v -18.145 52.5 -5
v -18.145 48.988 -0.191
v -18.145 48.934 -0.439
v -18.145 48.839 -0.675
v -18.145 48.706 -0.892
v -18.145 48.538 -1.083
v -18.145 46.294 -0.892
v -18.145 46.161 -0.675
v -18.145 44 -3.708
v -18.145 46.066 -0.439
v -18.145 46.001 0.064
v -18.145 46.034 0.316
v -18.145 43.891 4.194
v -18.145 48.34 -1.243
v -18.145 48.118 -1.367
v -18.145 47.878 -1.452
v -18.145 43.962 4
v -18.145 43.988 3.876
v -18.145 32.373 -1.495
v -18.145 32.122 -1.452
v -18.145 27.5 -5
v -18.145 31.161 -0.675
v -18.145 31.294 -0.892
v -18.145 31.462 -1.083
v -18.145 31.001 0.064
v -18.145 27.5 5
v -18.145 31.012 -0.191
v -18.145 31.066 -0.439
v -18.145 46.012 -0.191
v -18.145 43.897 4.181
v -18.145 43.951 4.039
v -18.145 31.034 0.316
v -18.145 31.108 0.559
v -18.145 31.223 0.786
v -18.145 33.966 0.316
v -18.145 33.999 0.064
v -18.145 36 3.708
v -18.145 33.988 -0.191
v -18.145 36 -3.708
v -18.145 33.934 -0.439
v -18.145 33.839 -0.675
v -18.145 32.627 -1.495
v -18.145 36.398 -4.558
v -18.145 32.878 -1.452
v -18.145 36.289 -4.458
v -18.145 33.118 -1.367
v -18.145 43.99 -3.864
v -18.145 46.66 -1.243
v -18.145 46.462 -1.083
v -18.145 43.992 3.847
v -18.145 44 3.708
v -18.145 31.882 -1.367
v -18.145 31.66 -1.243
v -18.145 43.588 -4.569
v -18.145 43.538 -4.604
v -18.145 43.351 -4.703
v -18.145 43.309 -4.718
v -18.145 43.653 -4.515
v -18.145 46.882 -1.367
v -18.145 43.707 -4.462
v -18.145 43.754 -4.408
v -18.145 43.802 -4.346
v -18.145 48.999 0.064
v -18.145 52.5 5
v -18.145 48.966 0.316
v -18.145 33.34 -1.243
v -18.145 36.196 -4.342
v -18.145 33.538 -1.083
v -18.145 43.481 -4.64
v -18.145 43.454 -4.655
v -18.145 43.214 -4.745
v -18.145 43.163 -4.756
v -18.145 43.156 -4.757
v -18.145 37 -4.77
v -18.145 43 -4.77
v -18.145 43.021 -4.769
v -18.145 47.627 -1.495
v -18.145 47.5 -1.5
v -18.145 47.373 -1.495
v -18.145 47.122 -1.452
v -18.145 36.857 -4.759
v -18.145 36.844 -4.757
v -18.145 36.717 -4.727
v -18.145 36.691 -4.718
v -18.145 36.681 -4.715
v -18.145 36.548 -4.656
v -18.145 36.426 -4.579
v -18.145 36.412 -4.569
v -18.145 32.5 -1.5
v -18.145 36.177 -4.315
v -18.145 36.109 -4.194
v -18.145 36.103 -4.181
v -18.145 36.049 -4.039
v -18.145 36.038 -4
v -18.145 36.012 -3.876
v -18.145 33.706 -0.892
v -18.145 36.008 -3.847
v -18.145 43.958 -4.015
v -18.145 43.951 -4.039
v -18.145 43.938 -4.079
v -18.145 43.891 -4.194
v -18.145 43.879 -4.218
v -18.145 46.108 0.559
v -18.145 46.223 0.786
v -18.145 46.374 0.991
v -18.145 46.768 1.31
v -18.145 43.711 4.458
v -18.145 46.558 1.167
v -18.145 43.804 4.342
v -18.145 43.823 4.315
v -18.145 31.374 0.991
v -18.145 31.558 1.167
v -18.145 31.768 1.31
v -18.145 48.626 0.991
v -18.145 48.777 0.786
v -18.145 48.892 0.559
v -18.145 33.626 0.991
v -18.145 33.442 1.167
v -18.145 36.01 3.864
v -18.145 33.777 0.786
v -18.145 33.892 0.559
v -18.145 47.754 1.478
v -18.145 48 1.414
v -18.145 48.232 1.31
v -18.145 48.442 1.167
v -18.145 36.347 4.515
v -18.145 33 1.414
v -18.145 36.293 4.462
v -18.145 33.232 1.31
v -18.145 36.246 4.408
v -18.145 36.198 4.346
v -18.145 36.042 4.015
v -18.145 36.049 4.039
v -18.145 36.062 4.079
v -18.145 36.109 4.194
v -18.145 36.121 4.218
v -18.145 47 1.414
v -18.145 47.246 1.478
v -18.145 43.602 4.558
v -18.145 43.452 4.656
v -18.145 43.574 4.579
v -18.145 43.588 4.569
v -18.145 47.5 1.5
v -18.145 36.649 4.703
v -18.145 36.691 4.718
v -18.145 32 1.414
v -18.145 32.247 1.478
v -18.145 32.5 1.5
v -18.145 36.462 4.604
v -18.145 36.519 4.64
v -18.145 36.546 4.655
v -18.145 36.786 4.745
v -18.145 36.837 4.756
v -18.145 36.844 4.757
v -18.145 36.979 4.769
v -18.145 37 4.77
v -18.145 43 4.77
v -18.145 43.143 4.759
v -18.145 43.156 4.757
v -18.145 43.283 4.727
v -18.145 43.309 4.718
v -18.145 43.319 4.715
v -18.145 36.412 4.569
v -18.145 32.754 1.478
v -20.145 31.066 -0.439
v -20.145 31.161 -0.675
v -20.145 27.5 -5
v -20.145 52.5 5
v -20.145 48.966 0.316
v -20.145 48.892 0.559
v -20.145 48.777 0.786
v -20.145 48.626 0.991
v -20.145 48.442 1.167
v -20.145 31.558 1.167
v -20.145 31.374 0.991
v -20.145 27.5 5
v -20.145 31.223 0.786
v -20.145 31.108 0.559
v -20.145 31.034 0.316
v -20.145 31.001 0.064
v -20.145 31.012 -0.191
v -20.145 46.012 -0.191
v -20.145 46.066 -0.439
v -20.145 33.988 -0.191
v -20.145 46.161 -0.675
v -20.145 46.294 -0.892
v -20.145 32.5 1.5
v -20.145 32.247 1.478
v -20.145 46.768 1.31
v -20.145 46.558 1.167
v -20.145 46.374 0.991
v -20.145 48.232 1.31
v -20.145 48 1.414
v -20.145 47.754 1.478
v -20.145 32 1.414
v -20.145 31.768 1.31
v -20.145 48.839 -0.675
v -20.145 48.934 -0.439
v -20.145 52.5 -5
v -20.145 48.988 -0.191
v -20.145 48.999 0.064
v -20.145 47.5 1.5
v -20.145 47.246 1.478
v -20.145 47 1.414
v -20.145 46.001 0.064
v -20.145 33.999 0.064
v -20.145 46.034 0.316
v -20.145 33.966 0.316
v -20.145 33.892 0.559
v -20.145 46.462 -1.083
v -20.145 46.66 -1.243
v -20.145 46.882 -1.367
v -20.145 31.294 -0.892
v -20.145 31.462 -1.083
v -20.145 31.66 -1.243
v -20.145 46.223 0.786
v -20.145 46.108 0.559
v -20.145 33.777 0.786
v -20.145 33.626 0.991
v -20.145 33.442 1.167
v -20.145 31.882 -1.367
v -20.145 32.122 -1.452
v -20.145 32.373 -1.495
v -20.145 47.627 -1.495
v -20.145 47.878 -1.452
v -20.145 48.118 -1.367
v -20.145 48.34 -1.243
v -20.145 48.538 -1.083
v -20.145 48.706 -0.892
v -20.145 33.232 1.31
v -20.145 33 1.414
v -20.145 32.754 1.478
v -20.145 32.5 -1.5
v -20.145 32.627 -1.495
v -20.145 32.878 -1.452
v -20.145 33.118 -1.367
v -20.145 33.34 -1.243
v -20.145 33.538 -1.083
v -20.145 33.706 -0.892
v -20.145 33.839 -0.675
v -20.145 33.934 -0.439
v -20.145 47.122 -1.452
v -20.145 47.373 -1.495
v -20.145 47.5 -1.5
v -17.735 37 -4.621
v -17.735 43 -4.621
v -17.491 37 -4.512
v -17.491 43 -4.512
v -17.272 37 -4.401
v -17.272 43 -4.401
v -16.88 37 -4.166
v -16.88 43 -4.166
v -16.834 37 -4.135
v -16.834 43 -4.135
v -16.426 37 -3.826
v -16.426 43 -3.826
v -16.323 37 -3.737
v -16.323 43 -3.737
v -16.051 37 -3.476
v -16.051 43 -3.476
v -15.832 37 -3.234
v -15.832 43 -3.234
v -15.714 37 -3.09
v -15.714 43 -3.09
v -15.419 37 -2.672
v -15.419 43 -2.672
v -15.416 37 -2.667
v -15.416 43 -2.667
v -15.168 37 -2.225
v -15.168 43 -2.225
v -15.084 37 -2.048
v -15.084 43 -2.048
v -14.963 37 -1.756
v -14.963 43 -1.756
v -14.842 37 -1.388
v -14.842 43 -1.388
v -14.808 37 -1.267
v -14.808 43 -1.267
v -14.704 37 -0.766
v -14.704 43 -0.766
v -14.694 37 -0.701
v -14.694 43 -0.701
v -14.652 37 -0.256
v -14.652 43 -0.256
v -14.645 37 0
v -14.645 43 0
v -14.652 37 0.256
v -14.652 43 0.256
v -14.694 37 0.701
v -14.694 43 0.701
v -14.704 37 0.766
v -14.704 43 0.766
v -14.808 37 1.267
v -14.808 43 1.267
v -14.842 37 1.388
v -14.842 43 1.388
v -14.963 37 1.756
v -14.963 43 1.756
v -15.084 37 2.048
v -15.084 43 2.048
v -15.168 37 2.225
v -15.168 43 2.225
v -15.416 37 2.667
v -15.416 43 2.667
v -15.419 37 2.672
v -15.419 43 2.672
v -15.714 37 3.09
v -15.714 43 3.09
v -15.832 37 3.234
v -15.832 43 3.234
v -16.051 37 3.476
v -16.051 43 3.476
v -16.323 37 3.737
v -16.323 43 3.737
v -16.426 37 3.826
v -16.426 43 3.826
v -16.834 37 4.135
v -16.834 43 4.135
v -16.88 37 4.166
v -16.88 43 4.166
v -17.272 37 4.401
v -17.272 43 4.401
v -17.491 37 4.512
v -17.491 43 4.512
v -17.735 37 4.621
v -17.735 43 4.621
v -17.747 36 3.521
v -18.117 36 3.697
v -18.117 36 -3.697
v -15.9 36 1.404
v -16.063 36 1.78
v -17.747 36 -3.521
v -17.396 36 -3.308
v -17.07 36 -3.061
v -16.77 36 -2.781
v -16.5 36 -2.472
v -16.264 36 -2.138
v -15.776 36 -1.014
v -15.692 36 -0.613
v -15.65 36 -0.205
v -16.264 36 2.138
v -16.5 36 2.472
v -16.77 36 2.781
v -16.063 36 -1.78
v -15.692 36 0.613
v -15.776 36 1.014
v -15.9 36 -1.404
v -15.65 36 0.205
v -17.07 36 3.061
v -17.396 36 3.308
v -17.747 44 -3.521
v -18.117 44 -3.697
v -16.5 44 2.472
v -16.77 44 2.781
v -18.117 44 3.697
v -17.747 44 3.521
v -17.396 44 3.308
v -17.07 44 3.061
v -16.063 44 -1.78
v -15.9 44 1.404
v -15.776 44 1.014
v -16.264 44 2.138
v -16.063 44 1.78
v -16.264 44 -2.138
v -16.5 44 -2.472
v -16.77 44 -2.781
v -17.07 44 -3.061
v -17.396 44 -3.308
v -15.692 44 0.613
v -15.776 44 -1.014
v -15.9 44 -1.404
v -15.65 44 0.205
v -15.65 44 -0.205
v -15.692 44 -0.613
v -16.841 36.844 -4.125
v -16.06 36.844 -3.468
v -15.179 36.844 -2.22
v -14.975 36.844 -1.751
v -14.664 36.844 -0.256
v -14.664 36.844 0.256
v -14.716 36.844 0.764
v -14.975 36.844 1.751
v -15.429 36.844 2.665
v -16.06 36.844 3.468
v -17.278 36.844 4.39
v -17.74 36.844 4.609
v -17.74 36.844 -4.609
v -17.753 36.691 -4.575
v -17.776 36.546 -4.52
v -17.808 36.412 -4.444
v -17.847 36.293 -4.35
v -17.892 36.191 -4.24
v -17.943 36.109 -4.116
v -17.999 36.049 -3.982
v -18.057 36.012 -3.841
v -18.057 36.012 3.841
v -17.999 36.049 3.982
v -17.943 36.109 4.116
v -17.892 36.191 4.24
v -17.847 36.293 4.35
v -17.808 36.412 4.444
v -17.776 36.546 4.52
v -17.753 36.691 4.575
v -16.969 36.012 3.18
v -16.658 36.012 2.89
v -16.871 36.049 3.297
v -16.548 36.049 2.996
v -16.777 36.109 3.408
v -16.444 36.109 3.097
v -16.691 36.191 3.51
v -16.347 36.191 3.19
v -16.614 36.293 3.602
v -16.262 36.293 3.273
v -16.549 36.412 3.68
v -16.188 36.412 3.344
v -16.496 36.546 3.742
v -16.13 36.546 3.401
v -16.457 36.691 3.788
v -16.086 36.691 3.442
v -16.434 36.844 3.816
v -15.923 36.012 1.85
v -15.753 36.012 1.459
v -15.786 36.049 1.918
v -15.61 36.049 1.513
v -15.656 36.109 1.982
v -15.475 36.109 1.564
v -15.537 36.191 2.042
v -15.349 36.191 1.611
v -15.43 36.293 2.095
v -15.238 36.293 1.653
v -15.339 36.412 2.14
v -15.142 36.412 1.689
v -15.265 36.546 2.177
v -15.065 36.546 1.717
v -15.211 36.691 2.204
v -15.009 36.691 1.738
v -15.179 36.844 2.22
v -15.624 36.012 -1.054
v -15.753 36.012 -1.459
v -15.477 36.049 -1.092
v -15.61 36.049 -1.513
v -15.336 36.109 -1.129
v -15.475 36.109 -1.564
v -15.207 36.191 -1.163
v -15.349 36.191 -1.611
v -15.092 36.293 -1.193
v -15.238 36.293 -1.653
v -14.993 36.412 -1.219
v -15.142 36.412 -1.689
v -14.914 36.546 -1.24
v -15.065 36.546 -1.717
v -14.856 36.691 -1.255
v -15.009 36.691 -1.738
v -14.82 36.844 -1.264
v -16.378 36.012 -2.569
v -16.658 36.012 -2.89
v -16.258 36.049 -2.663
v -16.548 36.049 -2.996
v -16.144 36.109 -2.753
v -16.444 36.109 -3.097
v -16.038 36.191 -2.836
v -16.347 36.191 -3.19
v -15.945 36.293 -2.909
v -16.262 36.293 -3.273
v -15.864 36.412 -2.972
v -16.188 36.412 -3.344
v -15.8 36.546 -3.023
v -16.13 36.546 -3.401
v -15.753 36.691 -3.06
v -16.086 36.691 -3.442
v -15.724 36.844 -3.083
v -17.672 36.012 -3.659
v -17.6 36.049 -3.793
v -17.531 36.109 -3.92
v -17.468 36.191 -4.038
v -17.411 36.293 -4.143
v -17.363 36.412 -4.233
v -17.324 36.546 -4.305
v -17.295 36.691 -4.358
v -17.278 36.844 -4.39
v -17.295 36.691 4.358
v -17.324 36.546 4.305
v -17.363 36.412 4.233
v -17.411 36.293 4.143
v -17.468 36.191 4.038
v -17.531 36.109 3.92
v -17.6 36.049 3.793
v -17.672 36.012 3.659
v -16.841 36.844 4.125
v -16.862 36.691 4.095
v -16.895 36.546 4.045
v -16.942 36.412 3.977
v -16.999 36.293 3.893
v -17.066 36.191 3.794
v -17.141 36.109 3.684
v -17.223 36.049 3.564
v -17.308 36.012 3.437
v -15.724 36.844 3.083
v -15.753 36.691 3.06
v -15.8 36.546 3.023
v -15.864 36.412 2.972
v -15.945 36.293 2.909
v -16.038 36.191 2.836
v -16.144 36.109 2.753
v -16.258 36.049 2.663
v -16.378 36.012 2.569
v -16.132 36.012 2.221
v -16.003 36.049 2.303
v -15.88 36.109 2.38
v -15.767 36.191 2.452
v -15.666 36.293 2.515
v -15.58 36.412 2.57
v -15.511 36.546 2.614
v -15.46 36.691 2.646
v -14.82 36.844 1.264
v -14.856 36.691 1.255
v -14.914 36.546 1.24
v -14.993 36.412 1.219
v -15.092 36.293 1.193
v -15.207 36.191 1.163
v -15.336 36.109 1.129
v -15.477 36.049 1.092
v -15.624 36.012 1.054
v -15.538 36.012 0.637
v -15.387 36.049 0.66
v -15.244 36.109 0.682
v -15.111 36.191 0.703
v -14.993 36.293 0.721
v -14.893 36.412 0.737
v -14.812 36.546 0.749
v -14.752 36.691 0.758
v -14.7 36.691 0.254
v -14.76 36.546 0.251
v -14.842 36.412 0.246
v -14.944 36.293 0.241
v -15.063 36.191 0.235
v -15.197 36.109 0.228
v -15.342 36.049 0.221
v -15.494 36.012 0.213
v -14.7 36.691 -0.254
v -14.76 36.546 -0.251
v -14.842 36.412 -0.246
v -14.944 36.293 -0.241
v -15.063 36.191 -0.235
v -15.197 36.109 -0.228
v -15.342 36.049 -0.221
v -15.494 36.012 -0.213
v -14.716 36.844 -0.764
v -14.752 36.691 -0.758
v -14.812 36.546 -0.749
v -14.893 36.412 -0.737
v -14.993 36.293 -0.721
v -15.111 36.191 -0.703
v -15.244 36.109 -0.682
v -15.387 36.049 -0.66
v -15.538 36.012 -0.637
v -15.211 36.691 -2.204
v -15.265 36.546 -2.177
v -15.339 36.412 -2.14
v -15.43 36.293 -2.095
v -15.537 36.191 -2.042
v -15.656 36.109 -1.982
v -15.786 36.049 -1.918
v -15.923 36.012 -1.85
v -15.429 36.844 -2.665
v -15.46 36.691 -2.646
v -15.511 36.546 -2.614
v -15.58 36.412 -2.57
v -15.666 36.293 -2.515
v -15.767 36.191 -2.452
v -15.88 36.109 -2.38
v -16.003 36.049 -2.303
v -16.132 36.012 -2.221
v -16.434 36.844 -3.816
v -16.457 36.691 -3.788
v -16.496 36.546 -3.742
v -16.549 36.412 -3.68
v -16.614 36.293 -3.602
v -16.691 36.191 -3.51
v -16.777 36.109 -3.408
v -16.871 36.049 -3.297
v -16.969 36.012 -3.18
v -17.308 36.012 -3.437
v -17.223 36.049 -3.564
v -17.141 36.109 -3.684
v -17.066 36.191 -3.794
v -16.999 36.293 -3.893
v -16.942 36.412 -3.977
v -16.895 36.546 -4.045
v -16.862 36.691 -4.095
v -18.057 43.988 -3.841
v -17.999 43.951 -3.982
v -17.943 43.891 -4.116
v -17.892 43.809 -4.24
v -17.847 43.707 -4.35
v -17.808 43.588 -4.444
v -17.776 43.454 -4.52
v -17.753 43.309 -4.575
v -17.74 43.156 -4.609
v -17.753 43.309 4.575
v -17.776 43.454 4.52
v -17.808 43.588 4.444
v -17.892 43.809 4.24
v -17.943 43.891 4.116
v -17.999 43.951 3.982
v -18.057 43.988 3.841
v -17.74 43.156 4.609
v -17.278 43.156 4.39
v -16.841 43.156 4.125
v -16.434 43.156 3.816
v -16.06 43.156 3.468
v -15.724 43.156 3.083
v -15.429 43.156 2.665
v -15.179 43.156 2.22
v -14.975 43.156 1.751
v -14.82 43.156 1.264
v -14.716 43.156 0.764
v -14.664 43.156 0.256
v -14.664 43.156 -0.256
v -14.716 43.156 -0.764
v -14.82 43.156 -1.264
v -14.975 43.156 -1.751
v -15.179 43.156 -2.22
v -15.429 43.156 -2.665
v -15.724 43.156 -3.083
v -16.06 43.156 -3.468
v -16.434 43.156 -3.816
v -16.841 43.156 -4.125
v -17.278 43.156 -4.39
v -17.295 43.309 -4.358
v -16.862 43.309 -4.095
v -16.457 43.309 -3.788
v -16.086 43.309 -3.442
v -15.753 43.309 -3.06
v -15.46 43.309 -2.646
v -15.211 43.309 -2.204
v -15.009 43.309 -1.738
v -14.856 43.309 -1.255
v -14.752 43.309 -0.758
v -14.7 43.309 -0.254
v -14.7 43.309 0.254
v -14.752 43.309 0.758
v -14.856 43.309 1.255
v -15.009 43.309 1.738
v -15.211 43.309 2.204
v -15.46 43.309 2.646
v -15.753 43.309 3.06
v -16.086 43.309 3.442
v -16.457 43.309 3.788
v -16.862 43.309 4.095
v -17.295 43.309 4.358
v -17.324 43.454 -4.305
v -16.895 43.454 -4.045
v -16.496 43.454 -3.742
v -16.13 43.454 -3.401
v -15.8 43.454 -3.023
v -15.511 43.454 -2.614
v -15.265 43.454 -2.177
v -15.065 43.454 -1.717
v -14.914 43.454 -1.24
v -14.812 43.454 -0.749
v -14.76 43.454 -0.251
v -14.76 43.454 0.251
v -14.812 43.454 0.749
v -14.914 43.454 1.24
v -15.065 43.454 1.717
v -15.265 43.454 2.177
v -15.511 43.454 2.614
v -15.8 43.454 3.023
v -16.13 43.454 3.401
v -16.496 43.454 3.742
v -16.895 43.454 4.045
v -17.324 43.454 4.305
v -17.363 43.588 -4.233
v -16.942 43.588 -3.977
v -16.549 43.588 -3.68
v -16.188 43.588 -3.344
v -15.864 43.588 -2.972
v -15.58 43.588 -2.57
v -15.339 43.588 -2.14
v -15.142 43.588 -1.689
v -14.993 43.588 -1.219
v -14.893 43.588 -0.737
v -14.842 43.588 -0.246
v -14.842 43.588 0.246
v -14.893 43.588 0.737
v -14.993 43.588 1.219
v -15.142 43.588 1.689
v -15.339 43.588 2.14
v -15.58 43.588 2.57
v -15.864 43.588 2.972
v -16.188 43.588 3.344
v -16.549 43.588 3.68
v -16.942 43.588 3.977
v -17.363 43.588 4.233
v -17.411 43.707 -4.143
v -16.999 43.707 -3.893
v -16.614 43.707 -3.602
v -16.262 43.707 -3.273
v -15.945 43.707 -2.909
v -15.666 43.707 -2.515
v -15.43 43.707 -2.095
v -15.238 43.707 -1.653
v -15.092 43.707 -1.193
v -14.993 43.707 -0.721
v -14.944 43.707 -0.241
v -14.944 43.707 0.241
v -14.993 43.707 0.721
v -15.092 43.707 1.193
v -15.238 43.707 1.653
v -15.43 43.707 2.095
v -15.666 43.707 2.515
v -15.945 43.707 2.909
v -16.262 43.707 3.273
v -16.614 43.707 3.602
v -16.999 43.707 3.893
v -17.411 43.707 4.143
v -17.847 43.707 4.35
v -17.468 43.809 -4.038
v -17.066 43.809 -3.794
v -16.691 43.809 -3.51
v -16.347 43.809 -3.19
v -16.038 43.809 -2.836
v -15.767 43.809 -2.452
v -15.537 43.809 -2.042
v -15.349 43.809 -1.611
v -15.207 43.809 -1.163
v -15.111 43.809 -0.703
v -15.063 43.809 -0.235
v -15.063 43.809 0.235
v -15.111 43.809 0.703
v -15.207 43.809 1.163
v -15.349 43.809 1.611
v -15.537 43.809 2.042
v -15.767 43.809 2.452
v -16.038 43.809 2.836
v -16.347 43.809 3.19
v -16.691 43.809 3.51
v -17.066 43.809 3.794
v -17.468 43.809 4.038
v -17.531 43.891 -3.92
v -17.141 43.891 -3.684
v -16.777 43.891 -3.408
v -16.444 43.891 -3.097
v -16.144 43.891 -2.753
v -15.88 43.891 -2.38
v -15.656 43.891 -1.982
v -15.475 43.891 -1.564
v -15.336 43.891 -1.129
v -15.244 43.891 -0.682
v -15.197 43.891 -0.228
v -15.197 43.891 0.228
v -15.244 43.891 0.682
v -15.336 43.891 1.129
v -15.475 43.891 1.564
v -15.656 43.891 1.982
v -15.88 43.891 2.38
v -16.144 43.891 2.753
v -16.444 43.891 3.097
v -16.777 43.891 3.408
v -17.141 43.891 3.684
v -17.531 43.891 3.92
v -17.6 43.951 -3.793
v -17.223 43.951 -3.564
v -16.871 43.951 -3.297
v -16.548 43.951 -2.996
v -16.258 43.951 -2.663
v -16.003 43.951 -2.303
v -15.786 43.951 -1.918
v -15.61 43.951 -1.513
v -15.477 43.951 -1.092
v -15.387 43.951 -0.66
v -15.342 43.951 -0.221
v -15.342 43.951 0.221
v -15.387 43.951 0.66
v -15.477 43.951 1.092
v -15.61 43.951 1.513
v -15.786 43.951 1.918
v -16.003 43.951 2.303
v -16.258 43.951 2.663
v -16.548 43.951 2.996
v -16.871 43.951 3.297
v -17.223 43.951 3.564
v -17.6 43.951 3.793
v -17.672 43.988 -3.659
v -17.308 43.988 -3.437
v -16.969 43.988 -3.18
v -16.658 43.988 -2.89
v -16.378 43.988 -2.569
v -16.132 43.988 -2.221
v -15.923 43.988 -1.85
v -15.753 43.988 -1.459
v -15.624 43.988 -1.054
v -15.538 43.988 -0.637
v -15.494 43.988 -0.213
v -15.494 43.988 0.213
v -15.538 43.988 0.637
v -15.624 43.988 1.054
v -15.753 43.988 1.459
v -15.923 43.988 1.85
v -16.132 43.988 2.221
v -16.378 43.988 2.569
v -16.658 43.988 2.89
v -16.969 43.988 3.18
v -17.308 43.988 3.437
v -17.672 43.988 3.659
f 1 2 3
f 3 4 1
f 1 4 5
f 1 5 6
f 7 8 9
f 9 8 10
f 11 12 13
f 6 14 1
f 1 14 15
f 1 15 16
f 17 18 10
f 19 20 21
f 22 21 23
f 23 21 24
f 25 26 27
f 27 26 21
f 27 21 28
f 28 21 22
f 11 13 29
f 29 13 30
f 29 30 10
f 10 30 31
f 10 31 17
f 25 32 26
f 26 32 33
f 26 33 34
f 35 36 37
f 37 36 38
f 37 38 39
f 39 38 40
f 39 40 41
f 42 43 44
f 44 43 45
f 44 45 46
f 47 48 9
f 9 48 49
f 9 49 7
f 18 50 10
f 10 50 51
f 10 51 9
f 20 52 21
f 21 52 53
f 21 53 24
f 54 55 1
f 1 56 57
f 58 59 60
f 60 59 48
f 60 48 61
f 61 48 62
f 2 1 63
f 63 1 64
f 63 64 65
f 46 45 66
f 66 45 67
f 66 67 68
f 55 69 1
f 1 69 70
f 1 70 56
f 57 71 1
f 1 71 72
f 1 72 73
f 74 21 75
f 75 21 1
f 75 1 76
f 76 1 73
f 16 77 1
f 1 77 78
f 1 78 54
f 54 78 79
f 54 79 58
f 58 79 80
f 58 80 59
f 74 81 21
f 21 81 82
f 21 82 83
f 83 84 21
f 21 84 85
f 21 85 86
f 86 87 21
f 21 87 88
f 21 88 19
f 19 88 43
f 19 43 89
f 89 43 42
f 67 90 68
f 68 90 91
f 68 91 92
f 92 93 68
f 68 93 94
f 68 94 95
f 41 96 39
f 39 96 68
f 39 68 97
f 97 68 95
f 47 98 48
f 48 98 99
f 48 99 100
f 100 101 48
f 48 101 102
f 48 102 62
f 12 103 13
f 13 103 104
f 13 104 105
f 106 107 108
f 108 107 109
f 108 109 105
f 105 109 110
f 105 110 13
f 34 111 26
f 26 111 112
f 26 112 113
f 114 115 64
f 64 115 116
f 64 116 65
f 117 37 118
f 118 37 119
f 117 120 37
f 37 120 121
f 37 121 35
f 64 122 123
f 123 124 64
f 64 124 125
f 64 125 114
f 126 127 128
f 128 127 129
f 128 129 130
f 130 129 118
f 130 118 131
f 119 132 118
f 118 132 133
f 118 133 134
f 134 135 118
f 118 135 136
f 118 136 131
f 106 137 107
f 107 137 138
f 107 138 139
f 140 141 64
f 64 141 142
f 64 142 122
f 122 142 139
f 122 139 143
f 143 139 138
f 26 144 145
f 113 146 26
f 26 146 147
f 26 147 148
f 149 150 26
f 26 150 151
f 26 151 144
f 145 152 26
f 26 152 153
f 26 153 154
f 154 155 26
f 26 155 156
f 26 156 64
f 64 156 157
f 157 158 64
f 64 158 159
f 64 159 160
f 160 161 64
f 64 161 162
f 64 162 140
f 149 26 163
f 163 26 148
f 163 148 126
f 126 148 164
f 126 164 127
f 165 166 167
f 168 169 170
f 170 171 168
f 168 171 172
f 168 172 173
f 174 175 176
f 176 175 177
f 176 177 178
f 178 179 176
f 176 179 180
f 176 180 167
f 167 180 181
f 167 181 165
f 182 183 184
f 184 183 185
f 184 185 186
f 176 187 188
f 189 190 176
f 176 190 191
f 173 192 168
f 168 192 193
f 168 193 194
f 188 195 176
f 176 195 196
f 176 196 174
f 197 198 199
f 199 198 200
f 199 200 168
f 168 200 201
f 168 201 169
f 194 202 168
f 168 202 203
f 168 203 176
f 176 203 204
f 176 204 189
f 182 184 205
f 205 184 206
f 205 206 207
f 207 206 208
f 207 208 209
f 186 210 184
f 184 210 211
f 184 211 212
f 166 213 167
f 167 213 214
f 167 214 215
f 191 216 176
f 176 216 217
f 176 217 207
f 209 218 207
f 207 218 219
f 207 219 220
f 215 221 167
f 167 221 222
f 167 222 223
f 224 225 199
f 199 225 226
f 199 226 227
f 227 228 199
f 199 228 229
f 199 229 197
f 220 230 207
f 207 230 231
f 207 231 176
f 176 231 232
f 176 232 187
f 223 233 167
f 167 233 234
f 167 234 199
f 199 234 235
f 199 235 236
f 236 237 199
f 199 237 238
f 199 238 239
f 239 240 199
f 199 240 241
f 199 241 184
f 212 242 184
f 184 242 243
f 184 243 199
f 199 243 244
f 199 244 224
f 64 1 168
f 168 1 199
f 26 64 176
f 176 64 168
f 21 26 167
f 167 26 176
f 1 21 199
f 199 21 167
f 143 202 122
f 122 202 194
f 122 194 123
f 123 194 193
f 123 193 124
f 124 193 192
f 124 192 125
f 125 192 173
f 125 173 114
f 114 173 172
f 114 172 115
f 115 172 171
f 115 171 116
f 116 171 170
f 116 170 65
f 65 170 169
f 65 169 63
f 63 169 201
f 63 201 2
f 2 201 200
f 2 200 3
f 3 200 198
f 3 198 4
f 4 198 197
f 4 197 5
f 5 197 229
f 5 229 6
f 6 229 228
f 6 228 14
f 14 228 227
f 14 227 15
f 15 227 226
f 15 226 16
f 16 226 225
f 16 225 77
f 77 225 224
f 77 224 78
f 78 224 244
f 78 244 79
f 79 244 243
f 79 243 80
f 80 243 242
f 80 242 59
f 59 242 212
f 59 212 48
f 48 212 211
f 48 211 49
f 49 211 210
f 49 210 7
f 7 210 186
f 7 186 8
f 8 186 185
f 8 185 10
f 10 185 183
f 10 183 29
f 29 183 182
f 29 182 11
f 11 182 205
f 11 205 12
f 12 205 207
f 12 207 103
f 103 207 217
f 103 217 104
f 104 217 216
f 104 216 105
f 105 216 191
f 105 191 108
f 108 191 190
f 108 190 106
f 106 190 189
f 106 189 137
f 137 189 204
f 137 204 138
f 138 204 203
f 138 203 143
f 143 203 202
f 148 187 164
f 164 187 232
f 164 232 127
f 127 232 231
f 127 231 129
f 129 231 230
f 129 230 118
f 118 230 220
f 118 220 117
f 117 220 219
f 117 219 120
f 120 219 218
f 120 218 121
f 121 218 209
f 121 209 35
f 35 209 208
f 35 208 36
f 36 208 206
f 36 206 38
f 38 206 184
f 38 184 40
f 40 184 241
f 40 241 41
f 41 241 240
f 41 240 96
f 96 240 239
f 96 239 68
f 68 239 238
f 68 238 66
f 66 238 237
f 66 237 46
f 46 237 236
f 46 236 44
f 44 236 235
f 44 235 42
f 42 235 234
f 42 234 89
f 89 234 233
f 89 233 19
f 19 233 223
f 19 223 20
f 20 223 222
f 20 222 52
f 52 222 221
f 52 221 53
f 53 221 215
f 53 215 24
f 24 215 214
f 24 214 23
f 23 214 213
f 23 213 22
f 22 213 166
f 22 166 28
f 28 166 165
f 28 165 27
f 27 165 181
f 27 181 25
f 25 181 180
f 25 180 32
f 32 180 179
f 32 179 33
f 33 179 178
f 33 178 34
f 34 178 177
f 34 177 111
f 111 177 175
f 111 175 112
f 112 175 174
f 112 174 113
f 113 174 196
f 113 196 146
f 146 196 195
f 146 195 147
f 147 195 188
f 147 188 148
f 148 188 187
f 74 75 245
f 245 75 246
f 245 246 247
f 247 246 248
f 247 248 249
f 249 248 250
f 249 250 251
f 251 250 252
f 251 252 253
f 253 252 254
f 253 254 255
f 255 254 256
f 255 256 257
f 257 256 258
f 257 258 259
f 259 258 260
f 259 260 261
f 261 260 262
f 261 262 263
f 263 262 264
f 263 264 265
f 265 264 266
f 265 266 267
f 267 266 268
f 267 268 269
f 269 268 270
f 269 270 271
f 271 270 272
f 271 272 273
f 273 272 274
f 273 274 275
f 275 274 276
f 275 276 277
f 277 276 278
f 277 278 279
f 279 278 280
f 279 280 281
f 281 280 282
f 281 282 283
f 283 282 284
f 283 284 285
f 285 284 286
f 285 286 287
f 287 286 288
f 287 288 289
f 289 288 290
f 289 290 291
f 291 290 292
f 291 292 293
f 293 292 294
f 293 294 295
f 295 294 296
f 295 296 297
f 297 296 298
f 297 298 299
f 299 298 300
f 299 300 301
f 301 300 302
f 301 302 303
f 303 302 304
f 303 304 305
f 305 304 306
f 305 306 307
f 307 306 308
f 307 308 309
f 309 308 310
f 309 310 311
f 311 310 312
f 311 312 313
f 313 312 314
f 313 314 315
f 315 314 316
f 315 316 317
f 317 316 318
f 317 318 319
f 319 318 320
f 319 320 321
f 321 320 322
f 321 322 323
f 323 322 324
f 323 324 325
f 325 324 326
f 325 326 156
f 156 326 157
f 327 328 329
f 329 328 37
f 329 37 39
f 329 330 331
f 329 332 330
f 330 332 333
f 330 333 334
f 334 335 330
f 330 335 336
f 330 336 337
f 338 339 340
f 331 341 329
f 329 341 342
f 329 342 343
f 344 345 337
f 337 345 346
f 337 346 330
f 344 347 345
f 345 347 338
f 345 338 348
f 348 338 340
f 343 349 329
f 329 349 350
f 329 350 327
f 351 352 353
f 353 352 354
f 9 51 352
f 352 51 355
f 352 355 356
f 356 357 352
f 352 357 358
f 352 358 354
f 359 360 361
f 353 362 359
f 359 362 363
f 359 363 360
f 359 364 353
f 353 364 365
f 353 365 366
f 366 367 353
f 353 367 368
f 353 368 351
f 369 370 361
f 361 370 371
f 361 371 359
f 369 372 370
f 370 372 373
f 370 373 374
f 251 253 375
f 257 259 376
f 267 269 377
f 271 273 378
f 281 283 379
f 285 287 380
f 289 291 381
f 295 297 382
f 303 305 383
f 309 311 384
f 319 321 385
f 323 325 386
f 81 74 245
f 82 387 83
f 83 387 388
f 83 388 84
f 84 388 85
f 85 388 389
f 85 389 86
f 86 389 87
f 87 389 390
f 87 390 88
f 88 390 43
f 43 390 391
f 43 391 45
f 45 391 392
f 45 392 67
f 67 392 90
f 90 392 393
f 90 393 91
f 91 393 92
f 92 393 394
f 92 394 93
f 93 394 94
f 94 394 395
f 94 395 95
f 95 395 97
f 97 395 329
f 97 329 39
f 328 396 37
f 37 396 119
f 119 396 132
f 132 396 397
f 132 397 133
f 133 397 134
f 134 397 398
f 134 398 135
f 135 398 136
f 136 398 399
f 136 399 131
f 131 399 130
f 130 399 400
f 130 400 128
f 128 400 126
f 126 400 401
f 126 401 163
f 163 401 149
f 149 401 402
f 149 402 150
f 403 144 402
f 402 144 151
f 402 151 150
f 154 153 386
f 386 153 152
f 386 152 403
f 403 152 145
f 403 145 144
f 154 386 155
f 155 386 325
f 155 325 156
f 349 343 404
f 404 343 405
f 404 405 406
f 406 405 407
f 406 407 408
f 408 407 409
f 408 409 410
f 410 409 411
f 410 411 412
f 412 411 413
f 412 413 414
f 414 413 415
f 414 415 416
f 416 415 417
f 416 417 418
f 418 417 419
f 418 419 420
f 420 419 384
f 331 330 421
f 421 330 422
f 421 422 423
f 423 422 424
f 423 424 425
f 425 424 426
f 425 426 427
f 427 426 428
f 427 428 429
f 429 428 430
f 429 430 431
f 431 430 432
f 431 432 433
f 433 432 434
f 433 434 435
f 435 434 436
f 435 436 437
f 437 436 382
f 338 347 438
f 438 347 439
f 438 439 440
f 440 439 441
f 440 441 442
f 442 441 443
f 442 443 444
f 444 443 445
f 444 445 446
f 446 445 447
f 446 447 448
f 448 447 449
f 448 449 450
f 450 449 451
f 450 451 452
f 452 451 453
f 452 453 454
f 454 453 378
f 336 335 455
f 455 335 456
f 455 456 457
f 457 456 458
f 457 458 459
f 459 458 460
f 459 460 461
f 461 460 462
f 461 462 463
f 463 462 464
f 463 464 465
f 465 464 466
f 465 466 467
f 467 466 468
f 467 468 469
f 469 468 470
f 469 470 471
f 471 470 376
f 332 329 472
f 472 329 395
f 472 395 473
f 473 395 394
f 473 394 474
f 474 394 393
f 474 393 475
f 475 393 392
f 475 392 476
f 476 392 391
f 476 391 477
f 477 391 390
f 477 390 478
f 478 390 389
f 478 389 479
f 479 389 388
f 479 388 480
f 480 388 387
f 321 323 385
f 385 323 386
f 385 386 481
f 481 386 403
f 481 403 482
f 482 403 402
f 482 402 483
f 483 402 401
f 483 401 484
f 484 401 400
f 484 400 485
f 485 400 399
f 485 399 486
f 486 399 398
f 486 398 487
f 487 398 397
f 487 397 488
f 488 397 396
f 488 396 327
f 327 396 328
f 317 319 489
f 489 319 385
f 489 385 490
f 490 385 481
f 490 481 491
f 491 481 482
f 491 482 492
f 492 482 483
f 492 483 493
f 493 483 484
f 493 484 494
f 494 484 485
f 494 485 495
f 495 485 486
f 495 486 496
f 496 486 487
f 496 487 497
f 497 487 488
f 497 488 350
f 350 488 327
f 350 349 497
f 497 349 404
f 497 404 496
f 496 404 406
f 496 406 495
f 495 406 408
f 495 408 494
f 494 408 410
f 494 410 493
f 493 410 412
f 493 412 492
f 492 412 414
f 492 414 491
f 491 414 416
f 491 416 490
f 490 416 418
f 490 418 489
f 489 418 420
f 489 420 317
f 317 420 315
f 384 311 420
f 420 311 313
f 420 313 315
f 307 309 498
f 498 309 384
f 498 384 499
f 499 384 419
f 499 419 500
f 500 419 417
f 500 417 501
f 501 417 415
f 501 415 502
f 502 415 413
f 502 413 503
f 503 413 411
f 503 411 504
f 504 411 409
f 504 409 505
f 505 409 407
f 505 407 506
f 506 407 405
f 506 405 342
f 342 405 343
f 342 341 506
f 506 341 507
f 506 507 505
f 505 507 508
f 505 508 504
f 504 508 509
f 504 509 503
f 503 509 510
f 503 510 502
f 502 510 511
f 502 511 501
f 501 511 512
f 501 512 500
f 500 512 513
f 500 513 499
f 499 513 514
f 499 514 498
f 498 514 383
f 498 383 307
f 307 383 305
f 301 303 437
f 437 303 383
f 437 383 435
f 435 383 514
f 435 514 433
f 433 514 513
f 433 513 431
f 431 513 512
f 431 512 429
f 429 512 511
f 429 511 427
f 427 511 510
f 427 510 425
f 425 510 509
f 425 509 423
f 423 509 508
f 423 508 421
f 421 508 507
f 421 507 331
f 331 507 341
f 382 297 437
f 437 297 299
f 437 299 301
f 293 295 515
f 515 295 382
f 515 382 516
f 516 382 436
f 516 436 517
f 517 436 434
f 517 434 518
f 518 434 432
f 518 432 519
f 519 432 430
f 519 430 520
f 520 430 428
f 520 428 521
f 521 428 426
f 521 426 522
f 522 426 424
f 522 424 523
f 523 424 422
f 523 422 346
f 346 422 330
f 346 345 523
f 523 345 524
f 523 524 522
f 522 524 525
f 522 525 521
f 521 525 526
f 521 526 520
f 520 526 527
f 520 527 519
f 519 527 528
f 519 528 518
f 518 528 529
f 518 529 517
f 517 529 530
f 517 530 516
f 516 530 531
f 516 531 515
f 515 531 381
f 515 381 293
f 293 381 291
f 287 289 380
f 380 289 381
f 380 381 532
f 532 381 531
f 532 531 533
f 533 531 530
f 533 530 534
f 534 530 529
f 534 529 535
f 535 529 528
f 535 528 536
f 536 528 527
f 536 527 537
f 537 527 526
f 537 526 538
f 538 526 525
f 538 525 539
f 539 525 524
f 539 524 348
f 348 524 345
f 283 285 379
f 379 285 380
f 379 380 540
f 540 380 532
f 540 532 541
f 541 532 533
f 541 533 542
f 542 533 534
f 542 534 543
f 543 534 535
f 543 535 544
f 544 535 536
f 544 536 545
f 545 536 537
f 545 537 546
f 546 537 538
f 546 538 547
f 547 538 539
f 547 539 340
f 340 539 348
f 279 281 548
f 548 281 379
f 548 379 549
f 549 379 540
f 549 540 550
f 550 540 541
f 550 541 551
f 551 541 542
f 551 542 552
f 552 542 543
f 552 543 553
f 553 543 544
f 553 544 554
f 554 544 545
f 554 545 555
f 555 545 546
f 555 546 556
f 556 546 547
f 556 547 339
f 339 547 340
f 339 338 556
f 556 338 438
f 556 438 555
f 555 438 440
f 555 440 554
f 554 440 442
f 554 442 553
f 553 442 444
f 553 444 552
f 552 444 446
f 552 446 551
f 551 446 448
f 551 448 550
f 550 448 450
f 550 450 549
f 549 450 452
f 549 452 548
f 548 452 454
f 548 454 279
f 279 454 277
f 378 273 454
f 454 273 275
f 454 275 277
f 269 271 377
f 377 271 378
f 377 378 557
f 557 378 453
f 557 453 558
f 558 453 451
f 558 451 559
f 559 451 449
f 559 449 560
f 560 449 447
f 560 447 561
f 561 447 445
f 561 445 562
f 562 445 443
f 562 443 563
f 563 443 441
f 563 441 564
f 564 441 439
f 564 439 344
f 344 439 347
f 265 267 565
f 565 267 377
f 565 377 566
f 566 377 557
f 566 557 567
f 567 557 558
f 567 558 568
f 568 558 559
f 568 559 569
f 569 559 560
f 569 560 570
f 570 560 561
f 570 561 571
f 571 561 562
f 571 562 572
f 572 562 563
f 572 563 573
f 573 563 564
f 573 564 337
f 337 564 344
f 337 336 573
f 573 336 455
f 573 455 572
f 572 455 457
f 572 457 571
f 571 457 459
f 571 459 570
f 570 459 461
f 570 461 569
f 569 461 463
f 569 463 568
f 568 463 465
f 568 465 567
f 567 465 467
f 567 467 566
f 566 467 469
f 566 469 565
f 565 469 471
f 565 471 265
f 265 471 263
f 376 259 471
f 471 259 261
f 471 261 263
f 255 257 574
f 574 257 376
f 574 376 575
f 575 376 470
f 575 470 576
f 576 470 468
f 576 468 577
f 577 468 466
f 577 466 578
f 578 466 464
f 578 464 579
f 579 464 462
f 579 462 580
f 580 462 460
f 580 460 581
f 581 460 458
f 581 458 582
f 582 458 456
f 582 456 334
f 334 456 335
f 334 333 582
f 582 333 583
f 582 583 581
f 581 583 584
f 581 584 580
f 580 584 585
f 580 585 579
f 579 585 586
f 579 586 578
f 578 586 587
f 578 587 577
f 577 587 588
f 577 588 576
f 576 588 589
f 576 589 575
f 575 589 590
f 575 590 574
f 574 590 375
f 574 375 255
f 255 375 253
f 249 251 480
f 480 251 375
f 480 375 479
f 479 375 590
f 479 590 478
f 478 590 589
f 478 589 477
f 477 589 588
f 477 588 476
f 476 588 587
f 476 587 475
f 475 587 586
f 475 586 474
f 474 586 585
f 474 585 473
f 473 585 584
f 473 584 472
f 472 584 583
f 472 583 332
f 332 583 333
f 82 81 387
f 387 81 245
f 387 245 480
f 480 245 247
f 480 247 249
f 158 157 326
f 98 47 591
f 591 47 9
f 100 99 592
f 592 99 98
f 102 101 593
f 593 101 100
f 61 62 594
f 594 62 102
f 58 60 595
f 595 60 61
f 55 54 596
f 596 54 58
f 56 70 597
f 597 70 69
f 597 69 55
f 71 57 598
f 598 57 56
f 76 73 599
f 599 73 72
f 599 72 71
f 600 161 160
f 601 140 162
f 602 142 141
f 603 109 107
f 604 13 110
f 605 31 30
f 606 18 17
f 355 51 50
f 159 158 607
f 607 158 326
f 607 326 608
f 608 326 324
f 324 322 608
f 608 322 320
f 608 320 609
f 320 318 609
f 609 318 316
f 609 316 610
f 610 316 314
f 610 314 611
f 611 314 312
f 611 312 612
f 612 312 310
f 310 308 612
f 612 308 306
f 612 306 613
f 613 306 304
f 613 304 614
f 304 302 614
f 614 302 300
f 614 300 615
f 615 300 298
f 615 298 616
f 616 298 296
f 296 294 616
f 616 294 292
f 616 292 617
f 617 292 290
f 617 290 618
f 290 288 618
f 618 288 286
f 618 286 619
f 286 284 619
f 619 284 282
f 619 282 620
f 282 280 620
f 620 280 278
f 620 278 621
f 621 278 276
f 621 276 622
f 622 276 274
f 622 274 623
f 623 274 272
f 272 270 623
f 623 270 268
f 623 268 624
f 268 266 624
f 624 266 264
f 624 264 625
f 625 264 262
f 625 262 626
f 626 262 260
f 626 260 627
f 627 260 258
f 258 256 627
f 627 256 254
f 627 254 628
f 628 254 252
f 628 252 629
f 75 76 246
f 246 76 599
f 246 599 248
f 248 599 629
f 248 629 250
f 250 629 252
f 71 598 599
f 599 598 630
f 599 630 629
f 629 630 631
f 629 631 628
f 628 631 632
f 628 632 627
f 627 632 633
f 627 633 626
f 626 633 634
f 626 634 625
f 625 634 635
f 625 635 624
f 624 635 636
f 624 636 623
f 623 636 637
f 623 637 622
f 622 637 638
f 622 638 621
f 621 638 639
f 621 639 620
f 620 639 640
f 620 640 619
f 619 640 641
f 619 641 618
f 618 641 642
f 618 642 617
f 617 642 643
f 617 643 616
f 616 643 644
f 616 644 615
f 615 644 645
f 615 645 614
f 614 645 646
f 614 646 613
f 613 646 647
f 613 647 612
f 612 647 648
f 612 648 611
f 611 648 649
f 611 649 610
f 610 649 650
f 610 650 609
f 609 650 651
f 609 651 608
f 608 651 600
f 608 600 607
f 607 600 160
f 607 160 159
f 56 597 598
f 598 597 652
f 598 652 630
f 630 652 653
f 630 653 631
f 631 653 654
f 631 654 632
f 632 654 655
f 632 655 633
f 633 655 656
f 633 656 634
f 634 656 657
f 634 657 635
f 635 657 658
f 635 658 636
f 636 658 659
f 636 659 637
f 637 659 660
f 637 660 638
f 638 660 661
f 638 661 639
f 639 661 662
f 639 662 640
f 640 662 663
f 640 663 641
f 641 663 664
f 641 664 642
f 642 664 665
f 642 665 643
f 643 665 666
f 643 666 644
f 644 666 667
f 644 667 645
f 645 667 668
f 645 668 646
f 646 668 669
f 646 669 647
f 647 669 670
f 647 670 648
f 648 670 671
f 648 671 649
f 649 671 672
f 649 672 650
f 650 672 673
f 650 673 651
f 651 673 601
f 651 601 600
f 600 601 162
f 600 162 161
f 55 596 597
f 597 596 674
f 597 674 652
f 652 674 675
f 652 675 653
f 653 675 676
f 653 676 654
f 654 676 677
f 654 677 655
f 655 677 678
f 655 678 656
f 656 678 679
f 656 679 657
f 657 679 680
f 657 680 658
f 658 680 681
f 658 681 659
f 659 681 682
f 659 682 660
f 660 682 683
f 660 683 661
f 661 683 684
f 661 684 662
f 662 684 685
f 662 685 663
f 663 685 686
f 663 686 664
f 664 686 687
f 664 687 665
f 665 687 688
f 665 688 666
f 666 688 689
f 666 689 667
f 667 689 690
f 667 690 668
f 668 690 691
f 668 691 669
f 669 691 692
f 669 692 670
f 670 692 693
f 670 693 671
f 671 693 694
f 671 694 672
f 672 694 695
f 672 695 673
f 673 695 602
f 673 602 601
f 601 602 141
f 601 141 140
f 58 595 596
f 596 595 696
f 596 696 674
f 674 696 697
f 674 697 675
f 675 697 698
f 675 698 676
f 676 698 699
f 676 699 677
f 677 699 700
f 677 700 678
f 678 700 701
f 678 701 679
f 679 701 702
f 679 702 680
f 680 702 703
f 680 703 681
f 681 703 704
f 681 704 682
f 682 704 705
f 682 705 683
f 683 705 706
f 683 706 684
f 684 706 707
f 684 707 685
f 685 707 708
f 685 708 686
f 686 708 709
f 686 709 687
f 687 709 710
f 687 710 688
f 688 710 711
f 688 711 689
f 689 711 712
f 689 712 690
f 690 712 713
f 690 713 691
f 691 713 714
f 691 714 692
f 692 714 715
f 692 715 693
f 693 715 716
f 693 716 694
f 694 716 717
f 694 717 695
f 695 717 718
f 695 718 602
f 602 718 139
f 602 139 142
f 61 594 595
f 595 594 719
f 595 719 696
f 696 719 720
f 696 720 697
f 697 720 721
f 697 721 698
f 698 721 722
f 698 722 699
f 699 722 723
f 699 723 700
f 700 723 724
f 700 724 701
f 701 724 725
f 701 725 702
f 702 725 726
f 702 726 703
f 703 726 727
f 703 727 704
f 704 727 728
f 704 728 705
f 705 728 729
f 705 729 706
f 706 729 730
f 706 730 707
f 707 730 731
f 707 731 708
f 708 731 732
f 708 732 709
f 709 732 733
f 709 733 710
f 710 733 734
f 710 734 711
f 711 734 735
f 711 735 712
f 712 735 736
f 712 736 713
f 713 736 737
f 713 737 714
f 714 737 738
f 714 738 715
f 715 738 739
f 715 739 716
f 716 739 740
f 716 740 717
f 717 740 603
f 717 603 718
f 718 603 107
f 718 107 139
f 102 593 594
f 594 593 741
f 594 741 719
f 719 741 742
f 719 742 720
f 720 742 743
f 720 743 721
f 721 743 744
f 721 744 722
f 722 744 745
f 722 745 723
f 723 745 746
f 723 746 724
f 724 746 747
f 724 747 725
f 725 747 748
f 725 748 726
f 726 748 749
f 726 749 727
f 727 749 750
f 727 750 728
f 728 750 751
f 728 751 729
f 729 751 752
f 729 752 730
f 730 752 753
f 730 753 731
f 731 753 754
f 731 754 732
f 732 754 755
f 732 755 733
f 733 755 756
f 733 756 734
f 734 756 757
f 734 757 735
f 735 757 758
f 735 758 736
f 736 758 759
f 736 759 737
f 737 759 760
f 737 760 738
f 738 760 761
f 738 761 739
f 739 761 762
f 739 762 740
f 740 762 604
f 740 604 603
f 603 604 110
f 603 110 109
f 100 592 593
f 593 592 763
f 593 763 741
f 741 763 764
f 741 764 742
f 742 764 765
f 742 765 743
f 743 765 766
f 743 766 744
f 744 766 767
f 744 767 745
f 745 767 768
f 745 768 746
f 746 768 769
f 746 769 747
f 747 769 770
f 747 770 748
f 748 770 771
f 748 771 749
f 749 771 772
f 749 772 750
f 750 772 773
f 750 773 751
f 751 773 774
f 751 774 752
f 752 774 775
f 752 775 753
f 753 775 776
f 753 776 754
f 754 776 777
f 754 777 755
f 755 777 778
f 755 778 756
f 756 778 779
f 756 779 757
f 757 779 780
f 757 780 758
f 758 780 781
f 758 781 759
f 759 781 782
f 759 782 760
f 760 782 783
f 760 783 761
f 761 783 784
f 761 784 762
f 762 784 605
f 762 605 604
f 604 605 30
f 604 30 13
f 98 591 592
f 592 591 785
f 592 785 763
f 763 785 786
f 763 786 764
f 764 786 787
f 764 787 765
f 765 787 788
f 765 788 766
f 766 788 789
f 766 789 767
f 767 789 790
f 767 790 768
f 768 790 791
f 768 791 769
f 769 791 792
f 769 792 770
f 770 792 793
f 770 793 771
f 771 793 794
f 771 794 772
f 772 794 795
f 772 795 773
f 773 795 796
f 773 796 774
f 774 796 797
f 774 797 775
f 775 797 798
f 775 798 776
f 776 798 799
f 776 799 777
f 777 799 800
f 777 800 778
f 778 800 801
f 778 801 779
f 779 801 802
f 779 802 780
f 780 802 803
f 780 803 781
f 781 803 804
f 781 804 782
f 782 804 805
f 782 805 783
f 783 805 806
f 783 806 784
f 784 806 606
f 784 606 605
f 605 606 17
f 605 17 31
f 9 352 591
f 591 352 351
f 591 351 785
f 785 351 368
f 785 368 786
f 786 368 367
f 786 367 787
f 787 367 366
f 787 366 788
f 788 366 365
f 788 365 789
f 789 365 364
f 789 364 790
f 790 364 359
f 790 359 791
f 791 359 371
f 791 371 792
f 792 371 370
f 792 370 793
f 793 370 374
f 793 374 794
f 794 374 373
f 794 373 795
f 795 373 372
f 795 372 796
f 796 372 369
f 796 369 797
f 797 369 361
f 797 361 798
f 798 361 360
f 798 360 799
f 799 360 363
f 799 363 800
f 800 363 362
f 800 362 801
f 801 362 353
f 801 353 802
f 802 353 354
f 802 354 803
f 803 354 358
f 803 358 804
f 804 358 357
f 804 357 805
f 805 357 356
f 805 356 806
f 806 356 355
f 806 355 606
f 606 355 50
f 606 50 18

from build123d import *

# Parameters (mm, degrees)
SKETCH1_W           = 10
SKETCH1_H           = 25
SKETCH1_R           = 1.5
BOSS_EXTRUDE1_DEPTH = 2
BOSS_EXTRUDE2_START = -56
BOSS_EXTRUDE2_DEPTH = 8
FILLET1_R           = 1


with BuildPart() as part:
    # Sketch1 → Boss-Extrude1 (new body)
    with BuildSketch(Plane(origin=(-20.145, 0, 0), x_dir=(0, 0, -1), z_dir=(1, 0, 0))):
        with Locations((0, 40)):
            Rectangle(SKETCH1_W, SKETCH1_H)
        with Locations((0, 47.5)):
            Circle(SKETCH1_R, mode=Mode.SUBTRACT)
        with Locations((0, 32.5)):
            Circle(SKETCH1_R, mode=Mode.SUBTRACT)
    extrude(amount=BOSS_EXTRUDE1_DEPTH)

    # Sketch2 → Boss-Extrude2 (add)
    with BuildSketch(Plane(origin=(0, 100, 0), x_dir=(1, 0, 0), z_dir=(0, 1, 0)).offset(BOSS_EXTRUDE2_START)):
        with BuildLine():
            Line((-19.645, 5), (-19.645, -5))
            ThreePointArc((-19.645, -5), (-14.645, 0), (-19.645, 5))
        make_face()
    extrude(amount=-BOSS_EXTRUDE2_DEPTH)

    # Fillet1
    fillet1_edges = [part.edges().sort_by_distance(p)[0] for p in [
        (-14.645, 36, 0),
        (-14.645, 44, 0),
    ]]
    fillet(fillet1_edges, radius=FILLET1_R)


solid = part.part
